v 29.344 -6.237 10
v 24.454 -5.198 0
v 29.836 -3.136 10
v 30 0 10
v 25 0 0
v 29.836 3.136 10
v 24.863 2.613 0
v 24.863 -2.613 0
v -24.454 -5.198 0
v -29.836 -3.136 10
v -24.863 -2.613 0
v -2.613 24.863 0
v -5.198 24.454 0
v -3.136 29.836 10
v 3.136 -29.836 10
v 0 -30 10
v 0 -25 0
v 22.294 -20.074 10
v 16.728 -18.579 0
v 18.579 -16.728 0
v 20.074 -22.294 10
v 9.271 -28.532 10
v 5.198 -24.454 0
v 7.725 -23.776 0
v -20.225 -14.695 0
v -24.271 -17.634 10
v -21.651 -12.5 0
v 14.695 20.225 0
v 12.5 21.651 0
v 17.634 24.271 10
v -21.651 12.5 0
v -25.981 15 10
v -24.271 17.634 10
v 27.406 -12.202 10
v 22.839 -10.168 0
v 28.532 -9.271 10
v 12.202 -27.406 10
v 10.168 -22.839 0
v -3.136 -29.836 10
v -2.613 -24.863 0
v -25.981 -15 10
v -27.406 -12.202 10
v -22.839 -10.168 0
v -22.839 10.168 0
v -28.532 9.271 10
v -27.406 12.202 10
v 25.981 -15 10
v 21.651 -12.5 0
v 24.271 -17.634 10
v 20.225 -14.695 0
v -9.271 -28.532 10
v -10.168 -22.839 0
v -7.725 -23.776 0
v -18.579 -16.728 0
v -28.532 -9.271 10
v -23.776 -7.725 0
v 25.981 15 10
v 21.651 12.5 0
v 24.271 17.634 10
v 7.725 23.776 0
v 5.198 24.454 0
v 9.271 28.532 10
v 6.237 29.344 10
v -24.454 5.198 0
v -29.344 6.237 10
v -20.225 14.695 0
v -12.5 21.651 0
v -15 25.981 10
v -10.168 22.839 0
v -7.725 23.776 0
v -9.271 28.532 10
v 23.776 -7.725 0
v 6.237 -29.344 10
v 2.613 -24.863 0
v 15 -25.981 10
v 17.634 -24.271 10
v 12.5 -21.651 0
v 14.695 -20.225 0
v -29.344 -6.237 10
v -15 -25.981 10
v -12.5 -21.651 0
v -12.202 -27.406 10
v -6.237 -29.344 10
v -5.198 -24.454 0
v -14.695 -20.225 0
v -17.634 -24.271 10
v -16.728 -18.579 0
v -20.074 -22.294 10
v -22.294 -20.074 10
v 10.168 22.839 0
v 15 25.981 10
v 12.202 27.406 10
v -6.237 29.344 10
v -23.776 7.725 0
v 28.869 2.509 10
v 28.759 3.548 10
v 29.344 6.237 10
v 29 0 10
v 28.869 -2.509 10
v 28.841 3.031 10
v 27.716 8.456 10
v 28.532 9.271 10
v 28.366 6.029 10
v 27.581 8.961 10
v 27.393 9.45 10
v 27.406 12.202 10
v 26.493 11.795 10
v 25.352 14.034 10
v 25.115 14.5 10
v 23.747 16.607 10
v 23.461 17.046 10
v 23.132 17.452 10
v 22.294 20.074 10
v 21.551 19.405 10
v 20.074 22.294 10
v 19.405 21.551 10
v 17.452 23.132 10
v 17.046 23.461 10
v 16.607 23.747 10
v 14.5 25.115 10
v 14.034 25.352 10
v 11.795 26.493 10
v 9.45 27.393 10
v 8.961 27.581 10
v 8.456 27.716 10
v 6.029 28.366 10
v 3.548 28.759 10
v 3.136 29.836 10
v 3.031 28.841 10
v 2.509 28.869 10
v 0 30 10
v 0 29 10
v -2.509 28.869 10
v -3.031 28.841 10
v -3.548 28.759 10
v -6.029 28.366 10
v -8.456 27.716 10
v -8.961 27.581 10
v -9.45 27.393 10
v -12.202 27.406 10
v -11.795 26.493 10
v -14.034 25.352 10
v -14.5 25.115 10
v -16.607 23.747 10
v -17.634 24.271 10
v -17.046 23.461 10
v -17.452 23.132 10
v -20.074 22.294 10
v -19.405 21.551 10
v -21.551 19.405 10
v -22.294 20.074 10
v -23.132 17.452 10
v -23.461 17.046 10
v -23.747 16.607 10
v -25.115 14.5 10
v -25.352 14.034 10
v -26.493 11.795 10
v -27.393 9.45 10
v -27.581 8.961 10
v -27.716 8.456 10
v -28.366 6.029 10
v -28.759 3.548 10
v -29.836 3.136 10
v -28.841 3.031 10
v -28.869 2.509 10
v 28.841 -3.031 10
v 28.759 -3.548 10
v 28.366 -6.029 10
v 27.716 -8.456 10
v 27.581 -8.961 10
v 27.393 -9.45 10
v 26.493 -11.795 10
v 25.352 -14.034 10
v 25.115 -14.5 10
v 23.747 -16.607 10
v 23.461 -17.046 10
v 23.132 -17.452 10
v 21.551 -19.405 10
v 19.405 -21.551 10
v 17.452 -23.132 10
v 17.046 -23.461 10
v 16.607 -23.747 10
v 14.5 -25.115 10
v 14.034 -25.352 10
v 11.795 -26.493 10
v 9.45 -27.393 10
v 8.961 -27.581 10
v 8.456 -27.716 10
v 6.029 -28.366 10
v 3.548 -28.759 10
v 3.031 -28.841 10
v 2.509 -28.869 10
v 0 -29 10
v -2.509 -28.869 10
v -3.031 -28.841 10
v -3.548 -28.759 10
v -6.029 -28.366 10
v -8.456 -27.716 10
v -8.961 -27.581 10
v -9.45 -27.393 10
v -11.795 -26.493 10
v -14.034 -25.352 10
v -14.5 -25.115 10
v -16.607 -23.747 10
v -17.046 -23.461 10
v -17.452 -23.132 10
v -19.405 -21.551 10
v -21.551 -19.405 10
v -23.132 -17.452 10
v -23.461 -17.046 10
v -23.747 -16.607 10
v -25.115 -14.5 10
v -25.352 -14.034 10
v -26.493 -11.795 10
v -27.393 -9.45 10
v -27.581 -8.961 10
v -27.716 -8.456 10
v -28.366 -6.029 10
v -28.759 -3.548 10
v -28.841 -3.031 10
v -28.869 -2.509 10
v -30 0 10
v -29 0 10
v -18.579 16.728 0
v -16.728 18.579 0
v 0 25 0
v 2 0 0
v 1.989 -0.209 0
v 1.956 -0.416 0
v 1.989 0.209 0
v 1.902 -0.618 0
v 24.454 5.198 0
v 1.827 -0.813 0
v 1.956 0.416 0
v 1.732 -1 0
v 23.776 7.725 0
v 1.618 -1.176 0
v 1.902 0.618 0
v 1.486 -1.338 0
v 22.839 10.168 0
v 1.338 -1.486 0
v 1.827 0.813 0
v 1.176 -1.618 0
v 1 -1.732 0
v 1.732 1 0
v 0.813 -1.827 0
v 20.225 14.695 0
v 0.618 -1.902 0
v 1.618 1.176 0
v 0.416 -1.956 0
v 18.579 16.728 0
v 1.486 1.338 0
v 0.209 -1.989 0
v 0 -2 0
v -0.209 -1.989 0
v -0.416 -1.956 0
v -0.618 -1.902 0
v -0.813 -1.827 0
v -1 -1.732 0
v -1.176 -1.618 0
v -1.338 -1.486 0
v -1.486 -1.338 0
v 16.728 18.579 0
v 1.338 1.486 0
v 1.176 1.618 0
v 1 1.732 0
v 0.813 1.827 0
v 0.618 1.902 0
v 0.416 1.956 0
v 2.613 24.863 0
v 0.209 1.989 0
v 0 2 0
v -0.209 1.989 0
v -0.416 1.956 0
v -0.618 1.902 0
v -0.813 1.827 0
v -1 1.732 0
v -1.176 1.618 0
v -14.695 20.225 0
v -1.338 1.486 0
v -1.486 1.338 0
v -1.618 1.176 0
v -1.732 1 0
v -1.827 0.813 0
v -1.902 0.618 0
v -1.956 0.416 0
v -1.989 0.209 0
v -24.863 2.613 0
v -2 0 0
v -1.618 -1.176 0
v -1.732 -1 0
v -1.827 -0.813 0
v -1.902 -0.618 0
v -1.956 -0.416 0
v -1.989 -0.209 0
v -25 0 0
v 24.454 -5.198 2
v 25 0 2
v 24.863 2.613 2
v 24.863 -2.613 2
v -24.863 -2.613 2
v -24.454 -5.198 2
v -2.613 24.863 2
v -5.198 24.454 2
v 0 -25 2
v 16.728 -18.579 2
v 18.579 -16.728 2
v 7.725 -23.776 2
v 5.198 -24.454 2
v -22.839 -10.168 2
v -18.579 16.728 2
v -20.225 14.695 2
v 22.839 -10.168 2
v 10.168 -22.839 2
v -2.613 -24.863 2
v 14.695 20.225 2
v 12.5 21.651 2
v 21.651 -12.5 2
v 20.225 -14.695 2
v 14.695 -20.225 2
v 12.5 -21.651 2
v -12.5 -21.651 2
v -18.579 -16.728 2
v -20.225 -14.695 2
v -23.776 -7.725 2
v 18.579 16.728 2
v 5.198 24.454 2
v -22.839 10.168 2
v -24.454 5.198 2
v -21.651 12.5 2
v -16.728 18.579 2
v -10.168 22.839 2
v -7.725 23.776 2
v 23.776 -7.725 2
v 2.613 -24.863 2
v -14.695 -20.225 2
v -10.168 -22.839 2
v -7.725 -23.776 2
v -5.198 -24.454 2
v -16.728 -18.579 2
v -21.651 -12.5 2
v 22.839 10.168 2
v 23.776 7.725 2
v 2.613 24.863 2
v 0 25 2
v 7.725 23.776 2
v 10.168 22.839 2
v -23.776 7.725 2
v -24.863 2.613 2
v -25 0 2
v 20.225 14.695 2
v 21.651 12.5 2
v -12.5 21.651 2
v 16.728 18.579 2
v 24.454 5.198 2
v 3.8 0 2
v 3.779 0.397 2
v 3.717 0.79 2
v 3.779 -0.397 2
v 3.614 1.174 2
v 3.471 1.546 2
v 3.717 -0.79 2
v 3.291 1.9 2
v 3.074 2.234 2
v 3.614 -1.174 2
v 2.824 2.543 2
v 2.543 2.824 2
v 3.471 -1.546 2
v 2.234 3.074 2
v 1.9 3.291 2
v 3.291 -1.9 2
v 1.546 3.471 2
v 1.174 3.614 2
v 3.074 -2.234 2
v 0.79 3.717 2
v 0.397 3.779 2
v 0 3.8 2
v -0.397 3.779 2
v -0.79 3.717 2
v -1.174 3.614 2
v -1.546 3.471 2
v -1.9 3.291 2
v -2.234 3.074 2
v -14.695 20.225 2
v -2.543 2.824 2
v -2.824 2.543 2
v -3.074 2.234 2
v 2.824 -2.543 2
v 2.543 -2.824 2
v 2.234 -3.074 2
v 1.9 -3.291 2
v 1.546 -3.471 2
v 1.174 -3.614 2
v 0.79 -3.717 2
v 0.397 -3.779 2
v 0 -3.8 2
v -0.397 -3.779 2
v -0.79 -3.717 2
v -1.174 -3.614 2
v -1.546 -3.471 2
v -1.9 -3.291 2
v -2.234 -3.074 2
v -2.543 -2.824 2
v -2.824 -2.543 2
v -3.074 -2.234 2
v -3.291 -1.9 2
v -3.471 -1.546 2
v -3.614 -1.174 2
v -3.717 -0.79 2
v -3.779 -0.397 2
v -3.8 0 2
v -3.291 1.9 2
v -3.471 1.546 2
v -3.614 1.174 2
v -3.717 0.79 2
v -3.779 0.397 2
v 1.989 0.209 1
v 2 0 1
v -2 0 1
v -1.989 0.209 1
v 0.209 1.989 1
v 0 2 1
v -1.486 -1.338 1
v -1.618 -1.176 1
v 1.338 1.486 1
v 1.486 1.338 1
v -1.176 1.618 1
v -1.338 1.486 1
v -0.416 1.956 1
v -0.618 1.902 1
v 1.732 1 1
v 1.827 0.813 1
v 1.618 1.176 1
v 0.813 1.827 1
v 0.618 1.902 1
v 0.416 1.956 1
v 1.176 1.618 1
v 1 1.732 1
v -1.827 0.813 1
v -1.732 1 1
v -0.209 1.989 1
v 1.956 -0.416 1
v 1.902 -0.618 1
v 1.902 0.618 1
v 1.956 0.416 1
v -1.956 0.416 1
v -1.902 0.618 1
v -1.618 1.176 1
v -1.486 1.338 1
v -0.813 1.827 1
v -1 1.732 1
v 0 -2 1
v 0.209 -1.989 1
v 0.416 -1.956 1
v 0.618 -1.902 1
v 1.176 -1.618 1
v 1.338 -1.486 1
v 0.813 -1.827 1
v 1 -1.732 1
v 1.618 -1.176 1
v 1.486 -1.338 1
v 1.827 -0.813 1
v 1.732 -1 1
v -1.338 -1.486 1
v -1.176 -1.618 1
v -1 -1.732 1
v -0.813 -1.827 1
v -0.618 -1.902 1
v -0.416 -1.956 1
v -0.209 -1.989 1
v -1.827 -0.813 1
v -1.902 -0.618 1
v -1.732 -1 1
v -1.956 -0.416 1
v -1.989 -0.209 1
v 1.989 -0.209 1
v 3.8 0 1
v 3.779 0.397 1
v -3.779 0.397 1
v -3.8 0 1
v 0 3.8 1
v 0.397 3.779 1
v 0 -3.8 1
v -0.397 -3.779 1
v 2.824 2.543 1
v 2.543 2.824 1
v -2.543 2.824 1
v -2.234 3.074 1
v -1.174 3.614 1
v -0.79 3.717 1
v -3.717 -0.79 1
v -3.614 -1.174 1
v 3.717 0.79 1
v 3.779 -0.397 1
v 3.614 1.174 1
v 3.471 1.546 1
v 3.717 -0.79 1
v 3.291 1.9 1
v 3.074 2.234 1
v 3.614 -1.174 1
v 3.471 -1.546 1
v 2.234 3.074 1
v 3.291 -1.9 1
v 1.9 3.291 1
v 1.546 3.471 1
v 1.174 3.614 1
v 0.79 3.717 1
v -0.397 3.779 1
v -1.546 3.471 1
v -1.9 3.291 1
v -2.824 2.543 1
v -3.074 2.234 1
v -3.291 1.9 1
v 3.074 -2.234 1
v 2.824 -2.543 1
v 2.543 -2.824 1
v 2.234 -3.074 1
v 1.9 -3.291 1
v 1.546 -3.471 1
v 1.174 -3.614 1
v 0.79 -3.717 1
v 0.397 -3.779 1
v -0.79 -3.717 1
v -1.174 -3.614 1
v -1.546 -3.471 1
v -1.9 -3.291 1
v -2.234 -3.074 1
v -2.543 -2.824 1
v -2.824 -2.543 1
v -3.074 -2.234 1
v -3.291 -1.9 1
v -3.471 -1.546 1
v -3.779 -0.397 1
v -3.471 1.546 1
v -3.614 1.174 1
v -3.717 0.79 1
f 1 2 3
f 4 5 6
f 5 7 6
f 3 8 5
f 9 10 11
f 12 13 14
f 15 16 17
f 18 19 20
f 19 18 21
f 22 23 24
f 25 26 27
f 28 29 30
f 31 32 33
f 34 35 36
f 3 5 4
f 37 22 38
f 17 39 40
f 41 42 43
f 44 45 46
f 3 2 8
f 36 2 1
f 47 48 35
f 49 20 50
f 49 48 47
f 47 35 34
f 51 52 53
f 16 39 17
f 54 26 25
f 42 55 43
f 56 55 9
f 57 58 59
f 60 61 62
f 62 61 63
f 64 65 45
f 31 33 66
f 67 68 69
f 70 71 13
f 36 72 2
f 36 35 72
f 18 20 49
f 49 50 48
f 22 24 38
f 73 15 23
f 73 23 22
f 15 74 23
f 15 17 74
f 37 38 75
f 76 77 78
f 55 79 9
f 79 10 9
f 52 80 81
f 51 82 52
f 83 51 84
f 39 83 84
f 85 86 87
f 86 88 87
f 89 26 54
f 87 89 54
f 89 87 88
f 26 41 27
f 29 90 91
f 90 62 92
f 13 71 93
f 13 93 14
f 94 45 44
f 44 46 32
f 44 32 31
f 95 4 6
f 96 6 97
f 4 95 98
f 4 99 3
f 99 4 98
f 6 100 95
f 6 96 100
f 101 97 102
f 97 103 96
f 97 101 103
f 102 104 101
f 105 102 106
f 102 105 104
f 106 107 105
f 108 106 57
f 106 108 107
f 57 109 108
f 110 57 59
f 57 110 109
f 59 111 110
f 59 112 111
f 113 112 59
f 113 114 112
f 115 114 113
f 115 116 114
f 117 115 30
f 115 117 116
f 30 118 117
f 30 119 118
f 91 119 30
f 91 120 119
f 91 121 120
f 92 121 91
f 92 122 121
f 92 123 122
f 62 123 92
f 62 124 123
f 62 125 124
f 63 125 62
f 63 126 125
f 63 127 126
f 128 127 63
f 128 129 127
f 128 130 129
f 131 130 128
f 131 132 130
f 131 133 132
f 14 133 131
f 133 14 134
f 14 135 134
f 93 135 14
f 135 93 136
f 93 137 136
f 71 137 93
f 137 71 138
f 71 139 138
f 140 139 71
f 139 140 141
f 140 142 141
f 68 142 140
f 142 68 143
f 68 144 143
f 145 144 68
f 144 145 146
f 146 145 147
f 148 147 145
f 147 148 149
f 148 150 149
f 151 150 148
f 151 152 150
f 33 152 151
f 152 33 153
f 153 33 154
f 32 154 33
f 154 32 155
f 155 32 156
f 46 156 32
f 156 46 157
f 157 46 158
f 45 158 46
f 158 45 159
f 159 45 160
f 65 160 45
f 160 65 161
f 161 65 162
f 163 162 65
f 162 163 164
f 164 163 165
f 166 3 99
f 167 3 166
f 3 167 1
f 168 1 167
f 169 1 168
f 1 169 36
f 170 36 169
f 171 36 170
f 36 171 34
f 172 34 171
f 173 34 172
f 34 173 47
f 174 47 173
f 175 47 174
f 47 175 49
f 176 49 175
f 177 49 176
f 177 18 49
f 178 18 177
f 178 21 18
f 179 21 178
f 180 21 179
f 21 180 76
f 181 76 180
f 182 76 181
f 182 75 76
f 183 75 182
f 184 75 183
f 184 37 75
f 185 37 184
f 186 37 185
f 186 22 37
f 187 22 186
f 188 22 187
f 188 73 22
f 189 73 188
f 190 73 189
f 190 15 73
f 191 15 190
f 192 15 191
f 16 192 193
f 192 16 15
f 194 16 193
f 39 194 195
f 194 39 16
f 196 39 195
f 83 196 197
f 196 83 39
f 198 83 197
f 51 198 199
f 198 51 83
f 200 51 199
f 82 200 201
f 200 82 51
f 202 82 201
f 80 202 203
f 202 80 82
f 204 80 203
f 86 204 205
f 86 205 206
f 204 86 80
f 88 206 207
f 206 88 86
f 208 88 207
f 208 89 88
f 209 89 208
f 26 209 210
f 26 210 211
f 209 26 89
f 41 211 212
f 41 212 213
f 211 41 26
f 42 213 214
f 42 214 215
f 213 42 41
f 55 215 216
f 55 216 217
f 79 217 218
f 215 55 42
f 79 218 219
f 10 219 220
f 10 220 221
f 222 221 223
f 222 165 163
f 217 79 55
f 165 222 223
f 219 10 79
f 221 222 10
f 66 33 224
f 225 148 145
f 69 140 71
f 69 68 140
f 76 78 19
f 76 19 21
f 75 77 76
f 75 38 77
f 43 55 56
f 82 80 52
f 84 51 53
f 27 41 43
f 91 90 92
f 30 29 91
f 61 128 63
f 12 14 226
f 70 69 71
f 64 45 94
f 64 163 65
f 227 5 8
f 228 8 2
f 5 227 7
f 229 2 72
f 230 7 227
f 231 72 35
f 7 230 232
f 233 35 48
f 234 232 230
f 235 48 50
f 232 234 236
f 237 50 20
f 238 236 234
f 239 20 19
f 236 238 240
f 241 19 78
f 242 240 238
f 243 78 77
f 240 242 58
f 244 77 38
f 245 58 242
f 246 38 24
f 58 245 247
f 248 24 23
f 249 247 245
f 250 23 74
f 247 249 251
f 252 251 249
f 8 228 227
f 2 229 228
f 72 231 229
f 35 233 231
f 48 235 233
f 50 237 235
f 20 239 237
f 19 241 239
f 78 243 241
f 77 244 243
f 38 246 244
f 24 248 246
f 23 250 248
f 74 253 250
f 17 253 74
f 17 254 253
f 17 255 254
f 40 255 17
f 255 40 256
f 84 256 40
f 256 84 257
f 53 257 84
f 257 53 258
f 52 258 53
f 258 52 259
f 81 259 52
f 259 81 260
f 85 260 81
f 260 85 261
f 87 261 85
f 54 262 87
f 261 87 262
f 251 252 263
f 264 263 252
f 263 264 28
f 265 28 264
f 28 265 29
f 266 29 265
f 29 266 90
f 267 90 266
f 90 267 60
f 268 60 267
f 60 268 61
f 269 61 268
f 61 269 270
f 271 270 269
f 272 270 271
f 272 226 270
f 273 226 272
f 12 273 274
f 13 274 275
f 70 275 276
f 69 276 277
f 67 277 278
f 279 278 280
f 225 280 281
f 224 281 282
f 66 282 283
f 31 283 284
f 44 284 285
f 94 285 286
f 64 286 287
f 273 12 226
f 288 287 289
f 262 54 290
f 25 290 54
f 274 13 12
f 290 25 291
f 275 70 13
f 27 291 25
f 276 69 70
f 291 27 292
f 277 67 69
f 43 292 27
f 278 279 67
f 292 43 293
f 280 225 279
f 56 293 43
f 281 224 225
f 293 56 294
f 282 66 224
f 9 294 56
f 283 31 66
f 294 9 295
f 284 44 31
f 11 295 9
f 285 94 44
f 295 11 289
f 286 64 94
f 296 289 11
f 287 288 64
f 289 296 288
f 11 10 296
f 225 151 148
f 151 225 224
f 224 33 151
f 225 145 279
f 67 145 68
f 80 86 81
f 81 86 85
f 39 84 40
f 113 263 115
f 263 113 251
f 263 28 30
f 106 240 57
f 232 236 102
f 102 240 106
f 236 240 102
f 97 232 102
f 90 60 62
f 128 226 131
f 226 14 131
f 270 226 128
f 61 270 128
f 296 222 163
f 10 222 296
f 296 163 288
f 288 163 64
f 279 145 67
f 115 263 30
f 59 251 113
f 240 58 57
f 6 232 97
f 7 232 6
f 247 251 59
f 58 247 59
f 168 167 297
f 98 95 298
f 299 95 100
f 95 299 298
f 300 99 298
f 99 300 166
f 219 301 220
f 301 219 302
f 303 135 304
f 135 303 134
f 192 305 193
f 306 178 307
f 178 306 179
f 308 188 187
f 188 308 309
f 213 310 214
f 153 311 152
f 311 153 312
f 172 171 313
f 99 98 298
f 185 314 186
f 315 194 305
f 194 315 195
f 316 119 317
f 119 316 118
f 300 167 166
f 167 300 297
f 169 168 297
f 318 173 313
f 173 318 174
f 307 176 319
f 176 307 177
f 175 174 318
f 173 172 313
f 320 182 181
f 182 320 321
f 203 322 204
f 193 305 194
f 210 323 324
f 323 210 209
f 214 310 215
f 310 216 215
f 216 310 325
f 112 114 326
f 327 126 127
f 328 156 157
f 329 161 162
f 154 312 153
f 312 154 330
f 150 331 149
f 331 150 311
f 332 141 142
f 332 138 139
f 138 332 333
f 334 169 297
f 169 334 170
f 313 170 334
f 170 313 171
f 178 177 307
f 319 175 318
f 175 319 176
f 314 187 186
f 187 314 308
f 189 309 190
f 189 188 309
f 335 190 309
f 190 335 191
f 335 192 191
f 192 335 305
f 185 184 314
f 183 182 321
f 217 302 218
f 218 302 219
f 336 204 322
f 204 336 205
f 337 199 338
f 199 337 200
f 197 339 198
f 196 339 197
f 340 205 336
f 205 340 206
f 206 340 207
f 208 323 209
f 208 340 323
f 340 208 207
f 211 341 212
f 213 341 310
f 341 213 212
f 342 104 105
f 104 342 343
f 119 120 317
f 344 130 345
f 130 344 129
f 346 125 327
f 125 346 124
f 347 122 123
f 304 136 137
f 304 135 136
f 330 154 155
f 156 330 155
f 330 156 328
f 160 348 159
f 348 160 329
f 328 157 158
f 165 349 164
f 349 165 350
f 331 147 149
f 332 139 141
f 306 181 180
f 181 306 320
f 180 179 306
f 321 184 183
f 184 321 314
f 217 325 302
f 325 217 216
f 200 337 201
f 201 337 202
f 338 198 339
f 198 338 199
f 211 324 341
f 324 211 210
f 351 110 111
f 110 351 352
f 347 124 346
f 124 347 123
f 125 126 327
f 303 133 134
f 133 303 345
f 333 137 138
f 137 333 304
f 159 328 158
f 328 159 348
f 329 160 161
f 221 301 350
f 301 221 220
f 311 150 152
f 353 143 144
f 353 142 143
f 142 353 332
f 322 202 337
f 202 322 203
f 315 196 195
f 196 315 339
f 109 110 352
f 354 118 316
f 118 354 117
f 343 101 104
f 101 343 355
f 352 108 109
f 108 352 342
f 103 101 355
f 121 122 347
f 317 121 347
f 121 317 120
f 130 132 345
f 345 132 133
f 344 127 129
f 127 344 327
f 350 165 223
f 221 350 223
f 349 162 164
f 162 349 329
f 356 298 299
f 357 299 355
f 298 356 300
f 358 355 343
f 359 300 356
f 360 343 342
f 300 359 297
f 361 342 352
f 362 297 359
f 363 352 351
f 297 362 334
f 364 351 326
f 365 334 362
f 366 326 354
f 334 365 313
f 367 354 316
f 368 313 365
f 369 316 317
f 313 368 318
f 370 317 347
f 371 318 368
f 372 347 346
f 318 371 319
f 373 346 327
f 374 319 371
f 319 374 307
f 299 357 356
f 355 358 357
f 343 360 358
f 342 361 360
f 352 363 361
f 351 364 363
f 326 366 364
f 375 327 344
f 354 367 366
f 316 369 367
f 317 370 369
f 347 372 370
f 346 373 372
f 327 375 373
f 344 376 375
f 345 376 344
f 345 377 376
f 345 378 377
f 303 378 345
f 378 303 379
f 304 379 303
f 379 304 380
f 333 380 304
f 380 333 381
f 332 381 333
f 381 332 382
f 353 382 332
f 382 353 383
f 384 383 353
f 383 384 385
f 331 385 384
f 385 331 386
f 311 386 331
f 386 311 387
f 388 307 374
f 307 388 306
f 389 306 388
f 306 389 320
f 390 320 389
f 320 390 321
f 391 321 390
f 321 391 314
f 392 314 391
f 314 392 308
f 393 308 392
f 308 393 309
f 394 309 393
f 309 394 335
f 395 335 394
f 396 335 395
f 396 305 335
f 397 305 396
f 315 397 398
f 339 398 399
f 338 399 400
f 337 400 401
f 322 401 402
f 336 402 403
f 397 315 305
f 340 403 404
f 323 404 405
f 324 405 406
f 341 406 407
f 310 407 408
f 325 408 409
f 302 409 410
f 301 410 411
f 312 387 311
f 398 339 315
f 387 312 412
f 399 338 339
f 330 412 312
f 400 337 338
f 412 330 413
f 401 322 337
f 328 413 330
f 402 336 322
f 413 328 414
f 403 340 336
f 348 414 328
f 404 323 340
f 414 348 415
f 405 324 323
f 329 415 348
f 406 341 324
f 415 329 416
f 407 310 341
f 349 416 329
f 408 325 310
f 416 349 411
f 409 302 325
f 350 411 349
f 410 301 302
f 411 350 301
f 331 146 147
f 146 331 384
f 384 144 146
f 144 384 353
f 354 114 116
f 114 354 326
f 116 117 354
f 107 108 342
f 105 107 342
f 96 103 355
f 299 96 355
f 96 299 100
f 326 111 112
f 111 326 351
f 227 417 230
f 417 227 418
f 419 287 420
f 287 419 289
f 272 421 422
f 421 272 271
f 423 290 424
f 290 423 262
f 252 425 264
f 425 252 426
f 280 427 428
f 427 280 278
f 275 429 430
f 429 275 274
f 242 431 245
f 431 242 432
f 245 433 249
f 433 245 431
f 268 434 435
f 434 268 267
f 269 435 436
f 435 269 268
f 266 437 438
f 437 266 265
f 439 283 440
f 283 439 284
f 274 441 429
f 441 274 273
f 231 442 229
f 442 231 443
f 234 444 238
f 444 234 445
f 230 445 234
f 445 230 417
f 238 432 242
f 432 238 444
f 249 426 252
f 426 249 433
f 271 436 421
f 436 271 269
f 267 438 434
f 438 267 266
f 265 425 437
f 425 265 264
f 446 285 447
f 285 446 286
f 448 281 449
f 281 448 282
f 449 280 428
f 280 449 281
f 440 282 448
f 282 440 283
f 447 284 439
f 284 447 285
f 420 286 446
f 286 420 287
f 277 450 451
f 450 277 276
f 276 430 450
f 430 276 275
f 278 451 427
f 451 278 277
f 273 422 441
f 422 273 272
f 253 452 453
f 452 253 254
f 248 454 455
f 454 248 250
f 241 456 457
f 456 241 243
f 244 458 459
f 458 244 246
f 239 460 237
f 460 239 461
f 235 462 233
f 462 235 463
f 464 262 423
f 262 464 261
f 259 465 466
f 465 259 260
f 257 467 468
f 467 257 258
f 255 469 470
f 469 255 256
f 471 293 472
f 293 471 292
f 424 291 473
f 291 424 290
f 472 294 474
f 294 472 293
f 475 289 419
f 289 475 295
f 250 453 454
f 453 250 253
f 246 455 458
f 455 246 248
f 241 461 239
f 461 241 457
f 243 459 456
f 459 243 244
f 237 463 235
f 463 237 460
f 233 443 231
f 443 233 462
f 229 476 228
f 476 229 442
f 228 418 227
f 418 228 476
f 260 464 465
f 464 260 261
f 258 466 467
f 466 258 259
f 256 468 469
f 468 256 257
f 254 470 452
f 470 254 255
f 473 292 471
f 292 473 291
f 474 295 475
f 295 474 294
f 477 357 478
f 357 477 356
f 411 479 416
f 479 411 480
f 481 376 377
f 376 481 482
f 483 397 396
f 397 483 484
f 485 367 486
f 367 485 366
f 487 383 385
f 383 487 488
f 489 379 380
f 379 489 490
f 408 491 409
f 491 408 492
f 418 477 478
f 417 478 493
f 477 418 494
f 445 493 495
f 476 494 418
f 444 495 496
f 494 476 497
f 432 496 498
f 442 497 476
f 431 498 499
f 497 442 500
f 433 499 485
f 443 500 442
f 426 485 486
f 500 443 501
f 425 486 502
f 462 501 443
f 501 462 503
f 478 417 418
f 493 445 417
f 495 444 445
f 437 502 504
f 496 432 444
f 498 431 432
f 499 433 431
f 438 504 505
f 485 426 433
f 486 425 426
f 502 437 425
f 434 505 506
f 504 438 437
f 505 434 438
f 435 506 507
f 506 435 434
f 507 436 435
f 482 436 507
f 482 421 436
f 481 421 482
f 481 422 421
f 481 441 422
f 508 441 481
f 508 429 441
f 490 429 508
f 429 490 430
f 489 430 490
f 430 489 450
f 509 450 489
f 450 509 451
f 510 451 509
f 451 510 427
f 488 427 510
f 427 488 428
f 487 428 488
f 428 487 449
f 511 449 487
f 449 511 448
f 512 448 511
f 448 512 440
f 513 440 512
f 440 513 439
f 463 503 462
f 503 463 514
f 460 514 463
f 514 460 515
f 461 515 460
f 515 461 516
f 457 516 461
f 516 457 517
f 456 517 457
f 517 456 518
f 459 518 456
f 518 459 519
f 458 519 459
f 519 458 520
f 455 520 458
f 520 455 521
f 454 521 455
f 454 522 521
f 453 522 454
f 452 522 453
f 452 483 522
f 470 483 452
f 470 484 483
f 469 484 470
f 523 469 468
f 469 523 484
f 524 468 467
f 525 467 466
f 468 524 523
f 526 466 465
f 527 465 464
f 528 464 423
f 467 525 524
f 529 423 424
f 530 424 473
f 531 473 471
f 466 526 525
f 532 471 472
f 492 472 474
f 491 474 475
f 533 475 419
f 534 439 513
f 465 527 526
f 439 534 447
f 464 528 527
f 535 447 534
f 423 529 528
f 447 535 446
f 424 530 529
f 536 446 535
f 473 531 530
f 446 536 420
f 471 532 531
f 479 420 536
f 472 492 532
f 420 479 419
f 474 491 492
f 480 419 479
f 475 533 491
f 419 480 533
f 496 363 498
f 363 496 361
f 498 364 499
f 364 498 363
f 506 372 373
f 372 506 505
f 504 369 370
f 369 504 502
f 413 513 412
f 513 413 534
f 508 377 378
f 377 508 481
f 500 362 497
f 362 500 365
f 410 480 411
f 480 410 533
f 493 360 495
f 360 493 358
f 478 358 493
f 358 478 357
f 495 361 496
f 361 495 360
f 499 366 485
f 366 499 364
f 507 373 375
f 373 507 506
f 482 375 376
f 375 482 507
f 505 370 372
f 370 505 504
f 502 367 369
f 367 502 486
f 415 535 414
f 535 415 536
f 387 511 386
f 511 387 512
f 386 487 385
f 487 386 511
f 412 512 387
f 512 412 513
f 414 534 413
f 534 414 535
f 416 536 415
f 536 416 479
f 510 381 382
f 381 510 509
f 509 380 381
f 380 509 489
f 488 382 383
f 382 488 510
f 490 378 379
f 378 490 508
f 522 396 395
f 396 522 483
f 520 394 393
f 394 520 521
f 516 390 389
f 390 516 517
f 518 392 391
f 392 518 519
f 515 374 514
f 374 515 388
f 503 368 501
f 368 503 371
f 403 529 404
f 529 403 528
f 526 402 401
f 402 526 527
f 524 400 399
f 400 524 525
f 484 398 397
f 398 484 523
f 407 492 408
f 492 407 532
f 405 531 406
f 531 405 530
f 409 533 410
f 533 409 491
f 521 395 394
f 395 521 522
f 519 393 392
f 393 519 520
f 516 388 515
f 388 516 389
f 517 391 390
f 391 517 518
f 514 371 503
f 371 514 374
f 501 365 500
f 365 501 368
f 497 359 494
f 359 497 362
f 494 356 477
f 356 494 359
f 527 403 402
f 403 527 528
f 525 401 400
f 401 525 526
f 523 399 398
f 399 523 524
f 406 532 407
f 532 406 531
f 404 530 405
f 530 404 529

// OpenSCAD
$fn = 60;
d1 = 50;
d2 = 60;
h = 10;
difference(){
   cylinder(d1 = d1, d2 = d2, h = h);
   #translate([0,0,2])cylinder(d1 = d1, d2 = d2, h = h);
   cylinder(d=4,h=5);
   translate([0,0,1])cylinder(d=7.6, h = 4);
}
